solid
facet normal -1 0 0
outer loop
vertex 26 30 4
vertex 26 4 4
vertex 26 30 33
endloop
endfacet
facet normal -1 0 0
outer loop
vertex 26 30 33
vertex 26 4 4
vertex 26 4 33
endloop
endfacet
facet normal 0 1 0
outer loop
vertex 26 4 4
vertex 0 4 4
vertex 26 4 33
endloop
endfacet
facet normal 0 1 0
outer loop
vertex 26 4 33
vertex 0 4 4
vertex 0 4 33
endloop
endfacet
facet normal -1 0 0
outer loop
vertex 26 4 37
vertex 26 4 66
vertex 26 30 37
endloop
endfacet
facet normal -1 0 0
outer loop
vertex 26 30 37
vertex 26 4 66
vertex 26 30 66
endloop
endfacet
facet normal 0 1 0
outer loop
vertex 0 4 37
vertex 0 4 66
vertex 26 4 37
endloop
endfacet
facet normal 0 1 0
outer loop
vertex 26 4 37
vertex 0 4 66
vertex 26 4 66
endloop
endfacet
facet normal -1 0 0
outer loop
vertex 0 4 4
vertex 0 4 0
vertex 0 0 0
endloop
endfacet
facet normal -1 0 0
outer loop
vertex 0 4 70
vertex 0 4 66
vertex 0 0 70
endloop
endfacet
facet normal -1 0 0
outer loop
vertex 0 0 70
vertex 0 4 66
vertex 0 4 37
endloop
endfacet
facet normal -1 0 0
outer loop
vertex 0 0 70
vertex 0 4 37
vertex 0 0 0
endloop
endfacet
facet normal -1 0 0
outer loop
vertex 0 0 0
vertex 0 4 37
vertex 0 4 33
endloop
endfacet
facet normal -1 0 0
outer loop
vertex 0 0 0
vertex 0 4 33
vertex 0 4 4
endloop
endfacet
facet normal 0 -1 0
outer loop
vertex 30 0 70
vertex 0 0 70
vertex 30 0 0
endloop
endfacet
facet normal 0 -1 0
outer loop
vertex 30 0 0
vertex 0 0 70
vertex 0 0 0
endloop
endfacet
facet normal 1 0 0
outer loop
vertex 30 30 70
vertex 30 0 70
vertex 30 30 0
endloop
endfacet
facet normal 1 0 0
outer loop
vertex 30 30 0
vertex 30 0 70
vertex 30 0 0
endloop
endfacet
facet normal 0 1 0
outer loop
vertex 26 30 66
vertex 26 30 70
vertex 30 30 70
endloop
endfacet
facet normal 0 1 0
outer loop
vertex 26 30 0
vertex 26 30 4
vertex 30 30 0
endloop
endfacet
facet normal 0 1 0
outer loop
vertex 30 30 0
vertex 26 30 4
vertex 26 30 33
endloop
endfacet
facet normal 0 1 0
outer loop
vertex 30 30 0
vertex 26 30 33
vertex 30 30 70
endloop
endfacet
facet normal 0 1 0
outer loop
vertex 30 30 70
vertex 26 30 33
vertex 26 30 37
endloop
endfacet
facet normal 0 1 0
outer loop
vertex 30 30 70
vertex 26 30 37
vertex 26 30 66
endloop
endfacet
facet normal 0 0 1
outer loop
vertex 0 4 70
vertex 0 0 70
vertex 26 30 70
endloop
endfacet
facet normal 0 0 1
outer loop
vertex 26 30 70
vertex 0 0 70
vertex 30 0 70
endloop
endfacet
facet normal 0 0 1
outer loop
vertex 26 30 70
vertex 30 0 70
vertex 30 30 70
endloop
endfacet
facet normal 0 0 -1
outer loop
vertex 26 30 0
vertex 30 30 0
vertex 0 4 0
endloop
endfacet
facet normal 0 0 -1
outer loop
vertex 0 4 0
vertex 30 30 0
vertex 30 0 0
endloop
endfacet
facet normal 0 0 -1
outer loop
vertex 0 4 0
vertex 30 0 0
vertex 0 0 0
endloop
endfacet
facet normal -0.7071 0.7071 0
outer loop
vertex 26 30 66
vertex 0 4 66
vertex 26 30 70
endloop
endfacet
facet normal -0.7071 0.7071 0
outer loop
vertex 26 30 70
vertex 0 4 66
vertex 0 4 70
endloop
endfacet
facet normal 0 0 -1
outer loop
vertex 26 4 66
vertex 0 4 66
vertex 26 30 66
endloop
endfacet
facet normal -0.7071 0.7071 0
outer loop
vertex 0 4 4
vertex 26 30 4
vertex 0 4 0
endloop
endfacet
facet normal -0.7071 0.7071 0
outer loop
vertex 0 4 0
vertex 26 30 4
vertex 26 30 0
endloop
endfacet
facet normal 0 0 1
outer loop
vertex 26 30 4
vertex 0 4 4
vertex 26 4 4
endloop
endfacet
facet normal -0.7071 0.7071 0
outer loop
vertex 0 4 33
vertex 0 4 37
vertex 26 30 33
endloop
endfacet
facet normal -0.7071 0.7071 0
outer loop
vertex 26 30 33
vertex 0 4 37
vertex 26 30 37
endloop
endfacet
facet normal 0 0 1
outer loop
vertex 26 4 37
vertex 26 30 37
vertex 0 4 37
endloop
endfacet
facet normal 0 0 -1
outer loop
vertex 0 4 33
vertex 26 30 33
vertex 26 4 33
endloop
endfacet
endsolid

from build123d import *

# Parameters (mm, degrees)
BOSS_EXTRUDE1_DEPTH      = 70
BOSS_EXTRUDE2_DEPTH      = 4
BOSS_EXTRUDE3_DEPTH      = 4
BOSS_EXTRUDE4_DEPTH      = 2
BOSS_EXTRUDE4_DEPTH_BACK = 2


with BuildPart() as part:
    # Sketch1 → Boss-Extrude1 (new body)
    with BuildSketch(Plane.XY):
        Polygon((0, 0), (30, 0), (30, 30), (26, 30), (26, 4), (0, 4), align=None)
    extrude(amount=BOSS_EXTRUDE1_DEPTH)

    # Sketch2 → Boss-Extrude2 (add)
    with BuildSketch(Plane.XY.offset(70)):
        Polygon((26, 30), (0, 4), (26, 4), align=None)
    extrude(amount=-BOSS_EXTRUDE2_DEPTH)

    # Sketch3 → Boss-Extrude3 (add)
    with BuildSketch(Plane(origin=(0, 0, 0), x_dir=(-1, 0, 0), z_dir=(0, 0, -1))):
        Polygon((-26, 30), (0, 4), (-26, 4), align=None)
    extrude(amount=-BOSS_EXTRUDE3_DEPTH)

    # Sketch4 → Boss-Extrude4 (add, two sides: drawn at the far end of the back side and taken through both)
    with BuildSketch(Plane(origin=(0, 0, 35), x_dir=(-1, 0, 0), z_dir=(0, 0, -1)).offset(-BOSS_EXTRUDE4_DEPTH_BACK)):
        Polygon((-26, 30), (-26, 4), (0, 4), align=None)
    extrude(amount=BOSS_EXTRUDE4_DEPTH + BOSS_EXTRUDE4_DEPTH_BACK)


solid = part.part
